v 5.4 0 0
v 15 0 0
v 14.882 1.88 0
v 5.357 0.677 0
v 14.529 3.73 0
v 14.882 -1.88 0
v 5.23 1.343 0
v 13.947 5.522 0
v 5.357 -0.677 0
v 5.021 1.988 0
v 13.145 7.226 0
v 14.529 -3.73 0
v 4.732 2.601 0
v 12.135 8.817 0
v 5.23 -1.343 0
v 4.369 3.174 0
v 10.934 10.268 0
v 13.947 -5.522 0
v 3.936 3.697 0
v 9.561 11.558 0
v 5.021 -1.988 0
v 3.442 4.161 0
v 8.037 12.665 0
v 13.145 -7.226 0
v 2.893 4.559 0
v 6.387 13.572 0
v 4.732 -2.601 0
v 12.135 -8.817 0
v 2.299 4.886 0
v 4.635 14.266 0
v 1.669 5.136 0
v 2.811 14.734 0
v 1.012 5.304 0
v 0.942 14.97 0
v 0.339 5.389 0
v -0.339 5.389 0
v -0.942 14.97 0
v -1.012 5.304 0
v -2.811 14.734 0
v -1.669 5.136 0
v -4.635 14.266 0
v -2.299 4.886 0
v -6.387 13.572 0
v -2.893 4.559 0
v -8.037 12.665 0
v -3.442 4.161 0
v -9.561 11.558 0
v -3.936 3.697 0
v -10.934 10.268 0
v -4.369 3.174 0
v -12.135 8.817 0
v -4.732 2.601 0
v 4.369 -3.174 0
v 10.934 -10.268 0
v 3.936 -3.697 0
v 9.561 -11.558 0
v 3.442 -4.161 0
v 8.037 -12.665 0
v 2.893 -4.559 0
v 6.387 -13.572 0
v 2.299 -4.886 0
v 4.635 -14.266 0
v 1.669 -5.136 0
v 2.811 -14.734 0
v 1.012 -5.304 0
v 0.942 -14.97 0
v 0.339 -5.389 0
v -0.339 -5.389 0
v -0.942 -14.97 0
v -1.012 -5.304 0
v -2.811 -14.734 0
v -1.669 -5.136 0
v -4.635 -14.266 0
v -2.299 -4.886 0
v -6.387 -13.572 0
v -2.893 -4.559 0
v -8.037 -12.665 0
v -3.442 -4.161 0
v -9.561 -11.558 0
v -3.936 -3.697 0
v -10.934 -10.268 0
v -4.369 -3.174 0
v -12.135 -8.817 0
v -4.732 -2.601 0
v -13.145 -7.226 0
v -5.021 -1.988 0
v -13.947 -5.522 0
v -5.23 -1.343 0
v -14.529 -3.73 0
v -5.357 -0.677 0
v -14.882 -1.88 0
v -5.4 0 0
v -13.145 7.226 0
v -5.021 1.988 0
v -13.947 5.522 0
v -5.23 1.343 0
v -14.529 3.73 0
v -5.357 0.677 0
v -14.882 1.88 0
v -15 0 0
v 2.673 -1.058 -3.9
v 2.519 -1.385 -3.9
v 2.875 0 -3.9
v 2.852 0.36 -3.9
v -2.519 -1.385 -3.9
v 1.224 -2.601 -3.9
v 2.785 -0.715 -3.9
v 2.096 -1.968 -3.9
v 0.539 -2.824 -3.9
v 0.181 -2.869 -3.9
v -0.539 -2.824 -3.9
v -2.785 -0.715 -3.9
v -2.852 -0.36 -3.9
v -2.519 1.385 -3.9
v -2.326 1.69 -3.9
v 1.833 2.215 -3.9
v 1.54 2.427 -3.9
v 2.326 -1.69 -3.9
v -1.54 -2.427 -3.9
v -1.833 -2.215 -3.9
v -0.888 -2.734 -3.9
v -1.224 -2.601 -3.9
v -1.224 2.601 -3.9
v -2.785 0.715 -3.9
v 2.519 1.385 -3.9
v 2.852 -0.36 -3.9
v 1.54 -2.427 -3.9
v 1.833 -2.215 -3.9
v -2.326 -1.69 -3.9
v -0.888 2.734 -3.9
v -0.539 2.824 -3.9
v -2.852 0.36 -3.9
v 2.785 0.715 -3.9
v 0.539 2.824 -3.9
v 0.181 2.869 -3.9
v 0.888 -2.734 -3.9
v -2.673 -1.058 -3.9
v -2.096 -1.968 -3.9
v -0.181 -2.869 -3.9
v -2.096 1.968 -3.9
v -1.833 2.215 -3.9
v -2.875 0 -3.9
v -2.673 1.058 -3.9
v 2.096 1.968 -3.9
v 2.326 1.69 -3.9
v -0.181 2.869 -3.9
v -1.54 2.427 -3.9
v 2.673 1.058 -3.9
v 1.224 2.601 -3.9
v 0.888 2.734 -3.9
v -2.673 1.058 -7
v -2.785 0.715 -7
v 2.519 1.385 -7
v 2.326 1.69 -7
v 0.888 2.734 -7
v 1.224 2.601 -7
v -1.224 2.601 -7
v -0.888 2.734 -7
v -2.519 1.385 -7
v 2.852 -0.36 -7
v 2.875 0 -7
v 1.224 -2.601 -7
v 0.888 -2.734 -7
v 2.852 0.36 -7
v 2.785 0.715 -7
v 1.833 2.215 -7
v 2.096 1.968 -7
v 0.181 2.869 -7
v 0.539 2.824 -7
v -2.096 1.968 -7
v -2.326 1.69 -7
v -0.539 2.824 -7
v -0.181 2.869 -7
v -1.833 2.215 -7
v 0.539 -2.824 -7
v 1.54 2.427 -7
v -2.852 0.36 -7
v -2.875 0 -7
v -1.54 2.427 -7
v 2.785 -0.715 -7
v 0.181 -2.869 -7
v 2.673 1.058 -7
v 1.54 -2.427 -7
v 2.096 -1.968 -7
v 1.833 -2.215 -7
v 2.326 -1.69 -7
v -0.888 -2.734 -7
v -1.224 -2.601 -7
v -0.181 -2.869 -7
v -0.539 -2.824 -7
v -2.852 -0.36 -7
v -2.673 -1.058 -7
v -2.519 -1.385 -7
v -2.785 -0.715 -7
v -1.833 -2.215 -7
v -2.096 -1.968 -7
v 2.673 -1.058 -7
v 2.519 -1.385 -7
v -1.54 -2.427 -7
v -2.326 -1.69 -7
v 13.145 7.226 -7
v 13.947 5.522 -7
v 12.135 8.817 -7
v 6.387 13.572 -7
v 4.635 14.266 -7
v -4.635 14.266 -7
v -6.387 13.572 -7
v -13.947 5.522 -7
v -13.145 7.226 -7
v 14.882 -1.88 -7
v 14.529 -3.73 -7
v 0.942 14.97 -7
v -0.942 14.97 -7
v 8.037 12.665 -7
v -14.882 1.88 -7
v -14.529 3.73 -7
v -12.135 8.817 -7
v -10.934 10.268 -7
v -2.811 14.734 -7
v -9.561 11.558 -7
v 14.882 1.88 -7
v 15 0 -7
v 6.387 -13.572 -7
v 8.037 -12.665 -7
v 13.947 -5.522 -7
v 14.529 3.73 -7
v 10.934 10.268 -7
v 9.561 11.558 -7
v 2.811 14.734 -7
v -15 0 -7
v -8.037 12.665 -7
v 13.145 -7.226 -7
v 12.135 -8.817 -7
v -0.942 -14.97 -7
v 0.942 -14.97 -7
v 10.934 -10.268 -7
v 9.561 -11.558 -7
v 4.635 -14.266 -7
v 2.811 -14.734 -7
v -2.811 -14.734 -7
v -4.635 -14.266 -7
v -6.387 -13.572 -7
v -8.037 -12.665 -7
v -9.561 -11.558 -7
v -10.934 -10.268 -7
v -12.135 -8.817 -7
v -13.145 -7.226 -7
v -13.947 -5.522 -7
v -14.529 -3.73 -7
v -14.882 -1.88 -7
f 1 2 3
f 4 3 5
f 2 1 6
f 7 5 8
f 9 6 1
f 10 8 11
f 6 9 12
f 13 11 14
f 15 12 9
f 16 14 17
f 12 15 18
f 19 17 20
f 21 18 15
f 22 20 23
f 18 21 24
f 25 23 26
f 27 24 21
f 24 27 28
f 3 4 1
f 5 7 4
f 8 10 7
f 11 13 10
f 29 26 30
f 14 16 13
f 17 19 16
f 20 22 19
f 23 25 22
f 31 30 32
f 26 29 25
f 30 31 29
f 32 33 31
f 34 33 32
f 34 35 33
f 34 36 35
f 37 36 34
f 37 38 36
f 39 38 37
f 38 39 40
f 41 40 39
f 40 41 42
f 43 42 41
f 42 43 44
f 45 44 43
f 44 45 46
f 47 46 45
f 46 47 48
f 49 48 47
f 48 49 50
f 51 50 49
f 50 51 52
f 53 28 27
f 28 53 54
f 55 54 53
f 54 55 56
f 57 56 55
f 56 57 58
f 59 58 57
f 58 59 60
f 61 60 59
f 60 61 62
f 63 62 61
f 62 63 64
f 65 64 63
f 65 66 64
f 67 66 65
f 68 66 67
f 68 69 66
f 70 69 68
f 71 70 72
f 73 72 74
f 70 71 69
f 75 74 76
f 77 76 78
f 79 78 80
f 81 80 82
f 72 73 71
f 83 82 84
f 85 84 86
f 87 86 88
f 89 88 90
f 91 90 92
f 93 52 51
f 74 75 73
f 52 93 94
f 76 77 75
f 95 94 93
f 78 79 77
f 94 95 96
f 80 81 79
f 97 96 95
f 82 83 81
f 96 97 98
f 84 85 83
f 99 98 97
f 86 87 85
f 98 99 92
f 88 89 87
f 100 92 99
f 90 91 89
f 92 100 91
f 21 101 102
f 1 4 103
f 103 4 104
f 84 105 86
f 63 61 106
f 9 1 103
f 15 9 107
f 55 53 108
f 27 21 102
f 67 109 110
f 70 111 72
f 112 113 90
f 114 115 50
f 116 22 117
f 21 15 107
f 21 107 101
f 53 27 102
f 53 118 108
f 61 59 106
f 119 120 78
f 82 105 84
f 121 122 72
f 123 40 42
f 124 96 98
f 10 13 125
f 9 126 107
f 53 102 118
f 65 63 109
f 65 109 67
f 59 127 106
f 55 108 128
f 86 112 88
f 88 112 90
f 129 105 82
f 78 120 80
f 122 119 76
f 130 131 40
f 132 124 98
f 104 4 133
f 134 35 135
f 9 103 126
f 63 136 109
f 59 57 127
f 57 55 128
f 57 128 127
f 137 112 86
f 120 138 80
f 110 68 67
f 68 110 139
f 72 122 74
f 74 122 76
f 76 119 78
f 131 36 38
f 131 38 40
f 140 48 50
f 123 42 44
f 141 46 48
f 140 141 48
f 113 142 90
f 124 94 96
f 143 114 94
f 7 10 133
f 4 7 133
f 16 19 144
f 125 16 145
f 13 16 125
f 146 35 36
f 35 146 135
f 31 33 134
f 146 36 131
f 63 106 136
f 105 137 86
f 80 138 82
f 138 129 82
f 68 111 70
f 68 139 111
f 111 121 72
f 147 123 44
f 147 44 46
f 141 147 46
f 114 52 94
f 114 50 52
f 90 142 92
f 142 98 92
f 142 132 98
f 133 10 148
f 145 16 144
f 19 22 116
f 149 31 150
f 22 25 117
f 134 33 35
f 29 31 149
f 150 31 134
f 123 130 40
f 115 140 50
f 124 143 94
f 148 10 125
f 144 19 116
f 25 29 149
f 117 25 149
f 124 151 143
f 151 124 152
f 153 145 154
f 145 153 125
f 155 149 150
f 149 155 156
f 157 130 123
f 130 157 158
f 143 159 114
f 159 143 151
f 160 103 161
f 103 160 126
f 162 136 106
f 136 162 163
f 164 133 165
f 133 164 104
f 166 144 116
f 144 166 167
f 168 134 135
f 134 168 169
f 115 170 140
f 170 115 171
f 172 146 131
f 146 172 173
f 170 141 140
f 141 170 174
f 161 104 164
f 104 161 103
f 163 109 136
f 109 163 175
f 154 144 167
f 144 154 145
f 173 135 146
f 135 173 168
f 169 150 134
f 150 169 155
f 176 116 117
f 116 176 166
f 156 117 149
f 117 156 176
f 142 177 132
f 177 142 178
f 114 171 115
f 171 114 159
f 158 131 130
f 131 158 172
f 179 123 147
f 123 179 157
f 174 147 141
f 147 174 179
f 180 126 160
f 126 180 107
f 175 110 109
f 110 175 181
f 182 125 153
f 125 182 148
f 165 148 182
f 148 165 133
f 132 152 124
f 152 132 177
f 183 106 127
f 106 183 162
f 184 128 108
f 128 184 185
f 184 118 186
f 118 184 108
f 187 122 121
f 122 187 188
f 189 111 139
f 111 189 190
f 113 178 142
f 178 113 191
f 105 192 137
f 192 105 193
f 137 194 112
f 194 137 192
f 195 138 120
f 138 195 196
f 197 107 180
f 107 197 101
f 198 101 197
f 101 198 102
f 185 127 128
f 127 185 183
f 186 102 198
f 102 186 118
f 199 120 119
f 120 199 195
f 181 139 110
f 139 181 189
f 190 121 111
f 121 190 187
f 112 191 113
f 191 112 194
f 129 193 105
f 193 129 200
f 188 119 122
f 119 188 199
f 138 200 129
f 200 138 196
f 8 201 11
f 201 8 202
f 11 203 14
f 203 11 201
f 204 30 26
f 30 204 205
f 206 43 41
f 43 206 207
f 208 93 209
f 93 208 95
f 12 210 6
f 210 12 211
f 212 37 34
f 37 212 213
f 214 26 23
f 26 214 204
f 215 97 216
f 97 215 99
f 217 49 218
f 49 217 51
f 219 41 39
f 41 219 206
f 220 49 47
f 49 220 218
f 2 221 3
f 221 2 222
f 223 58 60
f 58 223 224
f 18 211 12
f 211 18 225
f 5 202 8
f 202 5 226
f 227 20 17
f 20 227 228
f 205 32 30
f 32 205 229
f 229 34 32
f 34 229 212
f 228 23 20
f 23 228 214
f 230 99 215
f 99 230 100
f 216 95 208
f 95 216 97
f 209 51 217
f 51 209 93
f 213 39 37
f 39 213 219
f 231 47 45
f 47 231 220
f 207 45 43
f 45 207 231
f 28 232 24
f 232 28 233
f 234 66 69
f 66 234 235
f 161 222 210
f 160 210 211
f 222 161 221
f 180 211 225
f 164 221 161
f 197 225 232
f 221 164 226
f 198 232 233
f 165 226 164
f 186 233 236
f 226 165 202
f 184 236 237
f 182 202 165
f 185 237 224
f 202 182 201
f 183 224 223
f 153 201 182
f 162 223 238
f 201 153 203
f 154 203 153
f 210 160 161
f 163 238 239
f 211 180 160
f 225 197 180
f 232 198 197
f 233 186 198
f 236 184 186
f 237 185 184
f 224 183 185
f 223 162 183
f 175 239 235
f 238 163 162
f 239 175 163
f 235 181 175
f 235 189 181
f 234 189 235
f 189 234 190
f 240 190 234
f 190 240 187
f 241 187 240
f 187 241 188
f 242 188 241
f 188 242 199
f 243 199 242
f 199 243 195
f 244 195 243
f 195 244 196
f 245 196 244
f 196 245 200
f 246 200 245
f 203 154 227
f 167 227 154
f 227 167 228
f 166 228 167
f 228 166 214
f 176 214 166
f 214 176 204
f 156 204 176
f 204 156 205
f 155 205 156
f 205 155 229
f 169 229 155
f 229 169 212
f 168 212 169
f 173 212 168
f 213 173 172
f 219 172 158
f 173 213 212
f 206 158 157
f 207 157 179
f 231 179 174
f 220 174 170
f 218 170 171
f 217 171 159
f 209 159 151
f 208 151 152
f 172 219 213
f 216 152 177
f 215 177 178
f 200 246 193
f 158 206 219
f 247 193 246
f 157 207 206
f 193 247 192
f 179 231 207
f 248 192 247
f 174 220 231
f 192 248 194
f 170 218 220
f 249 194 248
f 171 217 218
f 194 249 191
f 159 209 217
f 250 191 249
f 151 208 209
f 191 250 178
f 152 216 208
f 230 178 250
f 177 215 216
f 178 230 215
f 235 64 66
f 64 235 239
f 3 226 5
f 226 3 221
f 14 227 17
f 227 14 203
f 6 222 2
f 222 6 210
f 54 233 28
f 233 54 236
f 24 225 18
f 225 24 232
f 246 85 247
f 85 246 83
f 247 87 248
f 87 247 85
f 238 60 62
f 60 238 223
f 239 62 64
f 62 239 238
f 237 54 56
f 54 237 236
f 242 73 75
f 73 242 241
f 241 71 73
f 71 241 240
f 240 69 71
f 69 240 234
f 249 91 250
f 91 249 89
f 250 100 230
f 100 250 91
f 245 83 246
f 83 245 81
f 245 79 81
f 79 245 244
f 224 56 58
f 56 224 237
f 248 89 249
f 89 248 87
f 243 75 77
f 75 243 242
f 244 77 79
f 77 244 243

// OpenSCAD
$fn = 50;


difference() {
	union() {
		translate(v = [0, 0, -7.0000000000]) {
			cylinder(h = 7, r = 15.0000000000);
		}
	}
	union() {
		translate(v = [0, 0, 0]) {
			rotate(a = [0, 0, 0]) {
				difference() {
					union() {
						#translate(v = [0, 0, -9.0000000000]) {
							cylinder(h = 9, r = 2.6000000000);
						}
						#translate(v = [0, 0, -3.9000000000]) {
							cylinder(h = 3.9000000000, r1 = 2.8750000000, r2 = 5.4000000000);
						}
						#translate(v = [0, 0, -9.0000000000]) {
							cylinder(h = 9, r = 2.8750000000);
						}
						#translate(v = [0, 0, -9.0000000000]) {
							cylinder(h = 9, r = 2.6000000000);
						}
					}
					union();
				}
			}
		}
	}
}
